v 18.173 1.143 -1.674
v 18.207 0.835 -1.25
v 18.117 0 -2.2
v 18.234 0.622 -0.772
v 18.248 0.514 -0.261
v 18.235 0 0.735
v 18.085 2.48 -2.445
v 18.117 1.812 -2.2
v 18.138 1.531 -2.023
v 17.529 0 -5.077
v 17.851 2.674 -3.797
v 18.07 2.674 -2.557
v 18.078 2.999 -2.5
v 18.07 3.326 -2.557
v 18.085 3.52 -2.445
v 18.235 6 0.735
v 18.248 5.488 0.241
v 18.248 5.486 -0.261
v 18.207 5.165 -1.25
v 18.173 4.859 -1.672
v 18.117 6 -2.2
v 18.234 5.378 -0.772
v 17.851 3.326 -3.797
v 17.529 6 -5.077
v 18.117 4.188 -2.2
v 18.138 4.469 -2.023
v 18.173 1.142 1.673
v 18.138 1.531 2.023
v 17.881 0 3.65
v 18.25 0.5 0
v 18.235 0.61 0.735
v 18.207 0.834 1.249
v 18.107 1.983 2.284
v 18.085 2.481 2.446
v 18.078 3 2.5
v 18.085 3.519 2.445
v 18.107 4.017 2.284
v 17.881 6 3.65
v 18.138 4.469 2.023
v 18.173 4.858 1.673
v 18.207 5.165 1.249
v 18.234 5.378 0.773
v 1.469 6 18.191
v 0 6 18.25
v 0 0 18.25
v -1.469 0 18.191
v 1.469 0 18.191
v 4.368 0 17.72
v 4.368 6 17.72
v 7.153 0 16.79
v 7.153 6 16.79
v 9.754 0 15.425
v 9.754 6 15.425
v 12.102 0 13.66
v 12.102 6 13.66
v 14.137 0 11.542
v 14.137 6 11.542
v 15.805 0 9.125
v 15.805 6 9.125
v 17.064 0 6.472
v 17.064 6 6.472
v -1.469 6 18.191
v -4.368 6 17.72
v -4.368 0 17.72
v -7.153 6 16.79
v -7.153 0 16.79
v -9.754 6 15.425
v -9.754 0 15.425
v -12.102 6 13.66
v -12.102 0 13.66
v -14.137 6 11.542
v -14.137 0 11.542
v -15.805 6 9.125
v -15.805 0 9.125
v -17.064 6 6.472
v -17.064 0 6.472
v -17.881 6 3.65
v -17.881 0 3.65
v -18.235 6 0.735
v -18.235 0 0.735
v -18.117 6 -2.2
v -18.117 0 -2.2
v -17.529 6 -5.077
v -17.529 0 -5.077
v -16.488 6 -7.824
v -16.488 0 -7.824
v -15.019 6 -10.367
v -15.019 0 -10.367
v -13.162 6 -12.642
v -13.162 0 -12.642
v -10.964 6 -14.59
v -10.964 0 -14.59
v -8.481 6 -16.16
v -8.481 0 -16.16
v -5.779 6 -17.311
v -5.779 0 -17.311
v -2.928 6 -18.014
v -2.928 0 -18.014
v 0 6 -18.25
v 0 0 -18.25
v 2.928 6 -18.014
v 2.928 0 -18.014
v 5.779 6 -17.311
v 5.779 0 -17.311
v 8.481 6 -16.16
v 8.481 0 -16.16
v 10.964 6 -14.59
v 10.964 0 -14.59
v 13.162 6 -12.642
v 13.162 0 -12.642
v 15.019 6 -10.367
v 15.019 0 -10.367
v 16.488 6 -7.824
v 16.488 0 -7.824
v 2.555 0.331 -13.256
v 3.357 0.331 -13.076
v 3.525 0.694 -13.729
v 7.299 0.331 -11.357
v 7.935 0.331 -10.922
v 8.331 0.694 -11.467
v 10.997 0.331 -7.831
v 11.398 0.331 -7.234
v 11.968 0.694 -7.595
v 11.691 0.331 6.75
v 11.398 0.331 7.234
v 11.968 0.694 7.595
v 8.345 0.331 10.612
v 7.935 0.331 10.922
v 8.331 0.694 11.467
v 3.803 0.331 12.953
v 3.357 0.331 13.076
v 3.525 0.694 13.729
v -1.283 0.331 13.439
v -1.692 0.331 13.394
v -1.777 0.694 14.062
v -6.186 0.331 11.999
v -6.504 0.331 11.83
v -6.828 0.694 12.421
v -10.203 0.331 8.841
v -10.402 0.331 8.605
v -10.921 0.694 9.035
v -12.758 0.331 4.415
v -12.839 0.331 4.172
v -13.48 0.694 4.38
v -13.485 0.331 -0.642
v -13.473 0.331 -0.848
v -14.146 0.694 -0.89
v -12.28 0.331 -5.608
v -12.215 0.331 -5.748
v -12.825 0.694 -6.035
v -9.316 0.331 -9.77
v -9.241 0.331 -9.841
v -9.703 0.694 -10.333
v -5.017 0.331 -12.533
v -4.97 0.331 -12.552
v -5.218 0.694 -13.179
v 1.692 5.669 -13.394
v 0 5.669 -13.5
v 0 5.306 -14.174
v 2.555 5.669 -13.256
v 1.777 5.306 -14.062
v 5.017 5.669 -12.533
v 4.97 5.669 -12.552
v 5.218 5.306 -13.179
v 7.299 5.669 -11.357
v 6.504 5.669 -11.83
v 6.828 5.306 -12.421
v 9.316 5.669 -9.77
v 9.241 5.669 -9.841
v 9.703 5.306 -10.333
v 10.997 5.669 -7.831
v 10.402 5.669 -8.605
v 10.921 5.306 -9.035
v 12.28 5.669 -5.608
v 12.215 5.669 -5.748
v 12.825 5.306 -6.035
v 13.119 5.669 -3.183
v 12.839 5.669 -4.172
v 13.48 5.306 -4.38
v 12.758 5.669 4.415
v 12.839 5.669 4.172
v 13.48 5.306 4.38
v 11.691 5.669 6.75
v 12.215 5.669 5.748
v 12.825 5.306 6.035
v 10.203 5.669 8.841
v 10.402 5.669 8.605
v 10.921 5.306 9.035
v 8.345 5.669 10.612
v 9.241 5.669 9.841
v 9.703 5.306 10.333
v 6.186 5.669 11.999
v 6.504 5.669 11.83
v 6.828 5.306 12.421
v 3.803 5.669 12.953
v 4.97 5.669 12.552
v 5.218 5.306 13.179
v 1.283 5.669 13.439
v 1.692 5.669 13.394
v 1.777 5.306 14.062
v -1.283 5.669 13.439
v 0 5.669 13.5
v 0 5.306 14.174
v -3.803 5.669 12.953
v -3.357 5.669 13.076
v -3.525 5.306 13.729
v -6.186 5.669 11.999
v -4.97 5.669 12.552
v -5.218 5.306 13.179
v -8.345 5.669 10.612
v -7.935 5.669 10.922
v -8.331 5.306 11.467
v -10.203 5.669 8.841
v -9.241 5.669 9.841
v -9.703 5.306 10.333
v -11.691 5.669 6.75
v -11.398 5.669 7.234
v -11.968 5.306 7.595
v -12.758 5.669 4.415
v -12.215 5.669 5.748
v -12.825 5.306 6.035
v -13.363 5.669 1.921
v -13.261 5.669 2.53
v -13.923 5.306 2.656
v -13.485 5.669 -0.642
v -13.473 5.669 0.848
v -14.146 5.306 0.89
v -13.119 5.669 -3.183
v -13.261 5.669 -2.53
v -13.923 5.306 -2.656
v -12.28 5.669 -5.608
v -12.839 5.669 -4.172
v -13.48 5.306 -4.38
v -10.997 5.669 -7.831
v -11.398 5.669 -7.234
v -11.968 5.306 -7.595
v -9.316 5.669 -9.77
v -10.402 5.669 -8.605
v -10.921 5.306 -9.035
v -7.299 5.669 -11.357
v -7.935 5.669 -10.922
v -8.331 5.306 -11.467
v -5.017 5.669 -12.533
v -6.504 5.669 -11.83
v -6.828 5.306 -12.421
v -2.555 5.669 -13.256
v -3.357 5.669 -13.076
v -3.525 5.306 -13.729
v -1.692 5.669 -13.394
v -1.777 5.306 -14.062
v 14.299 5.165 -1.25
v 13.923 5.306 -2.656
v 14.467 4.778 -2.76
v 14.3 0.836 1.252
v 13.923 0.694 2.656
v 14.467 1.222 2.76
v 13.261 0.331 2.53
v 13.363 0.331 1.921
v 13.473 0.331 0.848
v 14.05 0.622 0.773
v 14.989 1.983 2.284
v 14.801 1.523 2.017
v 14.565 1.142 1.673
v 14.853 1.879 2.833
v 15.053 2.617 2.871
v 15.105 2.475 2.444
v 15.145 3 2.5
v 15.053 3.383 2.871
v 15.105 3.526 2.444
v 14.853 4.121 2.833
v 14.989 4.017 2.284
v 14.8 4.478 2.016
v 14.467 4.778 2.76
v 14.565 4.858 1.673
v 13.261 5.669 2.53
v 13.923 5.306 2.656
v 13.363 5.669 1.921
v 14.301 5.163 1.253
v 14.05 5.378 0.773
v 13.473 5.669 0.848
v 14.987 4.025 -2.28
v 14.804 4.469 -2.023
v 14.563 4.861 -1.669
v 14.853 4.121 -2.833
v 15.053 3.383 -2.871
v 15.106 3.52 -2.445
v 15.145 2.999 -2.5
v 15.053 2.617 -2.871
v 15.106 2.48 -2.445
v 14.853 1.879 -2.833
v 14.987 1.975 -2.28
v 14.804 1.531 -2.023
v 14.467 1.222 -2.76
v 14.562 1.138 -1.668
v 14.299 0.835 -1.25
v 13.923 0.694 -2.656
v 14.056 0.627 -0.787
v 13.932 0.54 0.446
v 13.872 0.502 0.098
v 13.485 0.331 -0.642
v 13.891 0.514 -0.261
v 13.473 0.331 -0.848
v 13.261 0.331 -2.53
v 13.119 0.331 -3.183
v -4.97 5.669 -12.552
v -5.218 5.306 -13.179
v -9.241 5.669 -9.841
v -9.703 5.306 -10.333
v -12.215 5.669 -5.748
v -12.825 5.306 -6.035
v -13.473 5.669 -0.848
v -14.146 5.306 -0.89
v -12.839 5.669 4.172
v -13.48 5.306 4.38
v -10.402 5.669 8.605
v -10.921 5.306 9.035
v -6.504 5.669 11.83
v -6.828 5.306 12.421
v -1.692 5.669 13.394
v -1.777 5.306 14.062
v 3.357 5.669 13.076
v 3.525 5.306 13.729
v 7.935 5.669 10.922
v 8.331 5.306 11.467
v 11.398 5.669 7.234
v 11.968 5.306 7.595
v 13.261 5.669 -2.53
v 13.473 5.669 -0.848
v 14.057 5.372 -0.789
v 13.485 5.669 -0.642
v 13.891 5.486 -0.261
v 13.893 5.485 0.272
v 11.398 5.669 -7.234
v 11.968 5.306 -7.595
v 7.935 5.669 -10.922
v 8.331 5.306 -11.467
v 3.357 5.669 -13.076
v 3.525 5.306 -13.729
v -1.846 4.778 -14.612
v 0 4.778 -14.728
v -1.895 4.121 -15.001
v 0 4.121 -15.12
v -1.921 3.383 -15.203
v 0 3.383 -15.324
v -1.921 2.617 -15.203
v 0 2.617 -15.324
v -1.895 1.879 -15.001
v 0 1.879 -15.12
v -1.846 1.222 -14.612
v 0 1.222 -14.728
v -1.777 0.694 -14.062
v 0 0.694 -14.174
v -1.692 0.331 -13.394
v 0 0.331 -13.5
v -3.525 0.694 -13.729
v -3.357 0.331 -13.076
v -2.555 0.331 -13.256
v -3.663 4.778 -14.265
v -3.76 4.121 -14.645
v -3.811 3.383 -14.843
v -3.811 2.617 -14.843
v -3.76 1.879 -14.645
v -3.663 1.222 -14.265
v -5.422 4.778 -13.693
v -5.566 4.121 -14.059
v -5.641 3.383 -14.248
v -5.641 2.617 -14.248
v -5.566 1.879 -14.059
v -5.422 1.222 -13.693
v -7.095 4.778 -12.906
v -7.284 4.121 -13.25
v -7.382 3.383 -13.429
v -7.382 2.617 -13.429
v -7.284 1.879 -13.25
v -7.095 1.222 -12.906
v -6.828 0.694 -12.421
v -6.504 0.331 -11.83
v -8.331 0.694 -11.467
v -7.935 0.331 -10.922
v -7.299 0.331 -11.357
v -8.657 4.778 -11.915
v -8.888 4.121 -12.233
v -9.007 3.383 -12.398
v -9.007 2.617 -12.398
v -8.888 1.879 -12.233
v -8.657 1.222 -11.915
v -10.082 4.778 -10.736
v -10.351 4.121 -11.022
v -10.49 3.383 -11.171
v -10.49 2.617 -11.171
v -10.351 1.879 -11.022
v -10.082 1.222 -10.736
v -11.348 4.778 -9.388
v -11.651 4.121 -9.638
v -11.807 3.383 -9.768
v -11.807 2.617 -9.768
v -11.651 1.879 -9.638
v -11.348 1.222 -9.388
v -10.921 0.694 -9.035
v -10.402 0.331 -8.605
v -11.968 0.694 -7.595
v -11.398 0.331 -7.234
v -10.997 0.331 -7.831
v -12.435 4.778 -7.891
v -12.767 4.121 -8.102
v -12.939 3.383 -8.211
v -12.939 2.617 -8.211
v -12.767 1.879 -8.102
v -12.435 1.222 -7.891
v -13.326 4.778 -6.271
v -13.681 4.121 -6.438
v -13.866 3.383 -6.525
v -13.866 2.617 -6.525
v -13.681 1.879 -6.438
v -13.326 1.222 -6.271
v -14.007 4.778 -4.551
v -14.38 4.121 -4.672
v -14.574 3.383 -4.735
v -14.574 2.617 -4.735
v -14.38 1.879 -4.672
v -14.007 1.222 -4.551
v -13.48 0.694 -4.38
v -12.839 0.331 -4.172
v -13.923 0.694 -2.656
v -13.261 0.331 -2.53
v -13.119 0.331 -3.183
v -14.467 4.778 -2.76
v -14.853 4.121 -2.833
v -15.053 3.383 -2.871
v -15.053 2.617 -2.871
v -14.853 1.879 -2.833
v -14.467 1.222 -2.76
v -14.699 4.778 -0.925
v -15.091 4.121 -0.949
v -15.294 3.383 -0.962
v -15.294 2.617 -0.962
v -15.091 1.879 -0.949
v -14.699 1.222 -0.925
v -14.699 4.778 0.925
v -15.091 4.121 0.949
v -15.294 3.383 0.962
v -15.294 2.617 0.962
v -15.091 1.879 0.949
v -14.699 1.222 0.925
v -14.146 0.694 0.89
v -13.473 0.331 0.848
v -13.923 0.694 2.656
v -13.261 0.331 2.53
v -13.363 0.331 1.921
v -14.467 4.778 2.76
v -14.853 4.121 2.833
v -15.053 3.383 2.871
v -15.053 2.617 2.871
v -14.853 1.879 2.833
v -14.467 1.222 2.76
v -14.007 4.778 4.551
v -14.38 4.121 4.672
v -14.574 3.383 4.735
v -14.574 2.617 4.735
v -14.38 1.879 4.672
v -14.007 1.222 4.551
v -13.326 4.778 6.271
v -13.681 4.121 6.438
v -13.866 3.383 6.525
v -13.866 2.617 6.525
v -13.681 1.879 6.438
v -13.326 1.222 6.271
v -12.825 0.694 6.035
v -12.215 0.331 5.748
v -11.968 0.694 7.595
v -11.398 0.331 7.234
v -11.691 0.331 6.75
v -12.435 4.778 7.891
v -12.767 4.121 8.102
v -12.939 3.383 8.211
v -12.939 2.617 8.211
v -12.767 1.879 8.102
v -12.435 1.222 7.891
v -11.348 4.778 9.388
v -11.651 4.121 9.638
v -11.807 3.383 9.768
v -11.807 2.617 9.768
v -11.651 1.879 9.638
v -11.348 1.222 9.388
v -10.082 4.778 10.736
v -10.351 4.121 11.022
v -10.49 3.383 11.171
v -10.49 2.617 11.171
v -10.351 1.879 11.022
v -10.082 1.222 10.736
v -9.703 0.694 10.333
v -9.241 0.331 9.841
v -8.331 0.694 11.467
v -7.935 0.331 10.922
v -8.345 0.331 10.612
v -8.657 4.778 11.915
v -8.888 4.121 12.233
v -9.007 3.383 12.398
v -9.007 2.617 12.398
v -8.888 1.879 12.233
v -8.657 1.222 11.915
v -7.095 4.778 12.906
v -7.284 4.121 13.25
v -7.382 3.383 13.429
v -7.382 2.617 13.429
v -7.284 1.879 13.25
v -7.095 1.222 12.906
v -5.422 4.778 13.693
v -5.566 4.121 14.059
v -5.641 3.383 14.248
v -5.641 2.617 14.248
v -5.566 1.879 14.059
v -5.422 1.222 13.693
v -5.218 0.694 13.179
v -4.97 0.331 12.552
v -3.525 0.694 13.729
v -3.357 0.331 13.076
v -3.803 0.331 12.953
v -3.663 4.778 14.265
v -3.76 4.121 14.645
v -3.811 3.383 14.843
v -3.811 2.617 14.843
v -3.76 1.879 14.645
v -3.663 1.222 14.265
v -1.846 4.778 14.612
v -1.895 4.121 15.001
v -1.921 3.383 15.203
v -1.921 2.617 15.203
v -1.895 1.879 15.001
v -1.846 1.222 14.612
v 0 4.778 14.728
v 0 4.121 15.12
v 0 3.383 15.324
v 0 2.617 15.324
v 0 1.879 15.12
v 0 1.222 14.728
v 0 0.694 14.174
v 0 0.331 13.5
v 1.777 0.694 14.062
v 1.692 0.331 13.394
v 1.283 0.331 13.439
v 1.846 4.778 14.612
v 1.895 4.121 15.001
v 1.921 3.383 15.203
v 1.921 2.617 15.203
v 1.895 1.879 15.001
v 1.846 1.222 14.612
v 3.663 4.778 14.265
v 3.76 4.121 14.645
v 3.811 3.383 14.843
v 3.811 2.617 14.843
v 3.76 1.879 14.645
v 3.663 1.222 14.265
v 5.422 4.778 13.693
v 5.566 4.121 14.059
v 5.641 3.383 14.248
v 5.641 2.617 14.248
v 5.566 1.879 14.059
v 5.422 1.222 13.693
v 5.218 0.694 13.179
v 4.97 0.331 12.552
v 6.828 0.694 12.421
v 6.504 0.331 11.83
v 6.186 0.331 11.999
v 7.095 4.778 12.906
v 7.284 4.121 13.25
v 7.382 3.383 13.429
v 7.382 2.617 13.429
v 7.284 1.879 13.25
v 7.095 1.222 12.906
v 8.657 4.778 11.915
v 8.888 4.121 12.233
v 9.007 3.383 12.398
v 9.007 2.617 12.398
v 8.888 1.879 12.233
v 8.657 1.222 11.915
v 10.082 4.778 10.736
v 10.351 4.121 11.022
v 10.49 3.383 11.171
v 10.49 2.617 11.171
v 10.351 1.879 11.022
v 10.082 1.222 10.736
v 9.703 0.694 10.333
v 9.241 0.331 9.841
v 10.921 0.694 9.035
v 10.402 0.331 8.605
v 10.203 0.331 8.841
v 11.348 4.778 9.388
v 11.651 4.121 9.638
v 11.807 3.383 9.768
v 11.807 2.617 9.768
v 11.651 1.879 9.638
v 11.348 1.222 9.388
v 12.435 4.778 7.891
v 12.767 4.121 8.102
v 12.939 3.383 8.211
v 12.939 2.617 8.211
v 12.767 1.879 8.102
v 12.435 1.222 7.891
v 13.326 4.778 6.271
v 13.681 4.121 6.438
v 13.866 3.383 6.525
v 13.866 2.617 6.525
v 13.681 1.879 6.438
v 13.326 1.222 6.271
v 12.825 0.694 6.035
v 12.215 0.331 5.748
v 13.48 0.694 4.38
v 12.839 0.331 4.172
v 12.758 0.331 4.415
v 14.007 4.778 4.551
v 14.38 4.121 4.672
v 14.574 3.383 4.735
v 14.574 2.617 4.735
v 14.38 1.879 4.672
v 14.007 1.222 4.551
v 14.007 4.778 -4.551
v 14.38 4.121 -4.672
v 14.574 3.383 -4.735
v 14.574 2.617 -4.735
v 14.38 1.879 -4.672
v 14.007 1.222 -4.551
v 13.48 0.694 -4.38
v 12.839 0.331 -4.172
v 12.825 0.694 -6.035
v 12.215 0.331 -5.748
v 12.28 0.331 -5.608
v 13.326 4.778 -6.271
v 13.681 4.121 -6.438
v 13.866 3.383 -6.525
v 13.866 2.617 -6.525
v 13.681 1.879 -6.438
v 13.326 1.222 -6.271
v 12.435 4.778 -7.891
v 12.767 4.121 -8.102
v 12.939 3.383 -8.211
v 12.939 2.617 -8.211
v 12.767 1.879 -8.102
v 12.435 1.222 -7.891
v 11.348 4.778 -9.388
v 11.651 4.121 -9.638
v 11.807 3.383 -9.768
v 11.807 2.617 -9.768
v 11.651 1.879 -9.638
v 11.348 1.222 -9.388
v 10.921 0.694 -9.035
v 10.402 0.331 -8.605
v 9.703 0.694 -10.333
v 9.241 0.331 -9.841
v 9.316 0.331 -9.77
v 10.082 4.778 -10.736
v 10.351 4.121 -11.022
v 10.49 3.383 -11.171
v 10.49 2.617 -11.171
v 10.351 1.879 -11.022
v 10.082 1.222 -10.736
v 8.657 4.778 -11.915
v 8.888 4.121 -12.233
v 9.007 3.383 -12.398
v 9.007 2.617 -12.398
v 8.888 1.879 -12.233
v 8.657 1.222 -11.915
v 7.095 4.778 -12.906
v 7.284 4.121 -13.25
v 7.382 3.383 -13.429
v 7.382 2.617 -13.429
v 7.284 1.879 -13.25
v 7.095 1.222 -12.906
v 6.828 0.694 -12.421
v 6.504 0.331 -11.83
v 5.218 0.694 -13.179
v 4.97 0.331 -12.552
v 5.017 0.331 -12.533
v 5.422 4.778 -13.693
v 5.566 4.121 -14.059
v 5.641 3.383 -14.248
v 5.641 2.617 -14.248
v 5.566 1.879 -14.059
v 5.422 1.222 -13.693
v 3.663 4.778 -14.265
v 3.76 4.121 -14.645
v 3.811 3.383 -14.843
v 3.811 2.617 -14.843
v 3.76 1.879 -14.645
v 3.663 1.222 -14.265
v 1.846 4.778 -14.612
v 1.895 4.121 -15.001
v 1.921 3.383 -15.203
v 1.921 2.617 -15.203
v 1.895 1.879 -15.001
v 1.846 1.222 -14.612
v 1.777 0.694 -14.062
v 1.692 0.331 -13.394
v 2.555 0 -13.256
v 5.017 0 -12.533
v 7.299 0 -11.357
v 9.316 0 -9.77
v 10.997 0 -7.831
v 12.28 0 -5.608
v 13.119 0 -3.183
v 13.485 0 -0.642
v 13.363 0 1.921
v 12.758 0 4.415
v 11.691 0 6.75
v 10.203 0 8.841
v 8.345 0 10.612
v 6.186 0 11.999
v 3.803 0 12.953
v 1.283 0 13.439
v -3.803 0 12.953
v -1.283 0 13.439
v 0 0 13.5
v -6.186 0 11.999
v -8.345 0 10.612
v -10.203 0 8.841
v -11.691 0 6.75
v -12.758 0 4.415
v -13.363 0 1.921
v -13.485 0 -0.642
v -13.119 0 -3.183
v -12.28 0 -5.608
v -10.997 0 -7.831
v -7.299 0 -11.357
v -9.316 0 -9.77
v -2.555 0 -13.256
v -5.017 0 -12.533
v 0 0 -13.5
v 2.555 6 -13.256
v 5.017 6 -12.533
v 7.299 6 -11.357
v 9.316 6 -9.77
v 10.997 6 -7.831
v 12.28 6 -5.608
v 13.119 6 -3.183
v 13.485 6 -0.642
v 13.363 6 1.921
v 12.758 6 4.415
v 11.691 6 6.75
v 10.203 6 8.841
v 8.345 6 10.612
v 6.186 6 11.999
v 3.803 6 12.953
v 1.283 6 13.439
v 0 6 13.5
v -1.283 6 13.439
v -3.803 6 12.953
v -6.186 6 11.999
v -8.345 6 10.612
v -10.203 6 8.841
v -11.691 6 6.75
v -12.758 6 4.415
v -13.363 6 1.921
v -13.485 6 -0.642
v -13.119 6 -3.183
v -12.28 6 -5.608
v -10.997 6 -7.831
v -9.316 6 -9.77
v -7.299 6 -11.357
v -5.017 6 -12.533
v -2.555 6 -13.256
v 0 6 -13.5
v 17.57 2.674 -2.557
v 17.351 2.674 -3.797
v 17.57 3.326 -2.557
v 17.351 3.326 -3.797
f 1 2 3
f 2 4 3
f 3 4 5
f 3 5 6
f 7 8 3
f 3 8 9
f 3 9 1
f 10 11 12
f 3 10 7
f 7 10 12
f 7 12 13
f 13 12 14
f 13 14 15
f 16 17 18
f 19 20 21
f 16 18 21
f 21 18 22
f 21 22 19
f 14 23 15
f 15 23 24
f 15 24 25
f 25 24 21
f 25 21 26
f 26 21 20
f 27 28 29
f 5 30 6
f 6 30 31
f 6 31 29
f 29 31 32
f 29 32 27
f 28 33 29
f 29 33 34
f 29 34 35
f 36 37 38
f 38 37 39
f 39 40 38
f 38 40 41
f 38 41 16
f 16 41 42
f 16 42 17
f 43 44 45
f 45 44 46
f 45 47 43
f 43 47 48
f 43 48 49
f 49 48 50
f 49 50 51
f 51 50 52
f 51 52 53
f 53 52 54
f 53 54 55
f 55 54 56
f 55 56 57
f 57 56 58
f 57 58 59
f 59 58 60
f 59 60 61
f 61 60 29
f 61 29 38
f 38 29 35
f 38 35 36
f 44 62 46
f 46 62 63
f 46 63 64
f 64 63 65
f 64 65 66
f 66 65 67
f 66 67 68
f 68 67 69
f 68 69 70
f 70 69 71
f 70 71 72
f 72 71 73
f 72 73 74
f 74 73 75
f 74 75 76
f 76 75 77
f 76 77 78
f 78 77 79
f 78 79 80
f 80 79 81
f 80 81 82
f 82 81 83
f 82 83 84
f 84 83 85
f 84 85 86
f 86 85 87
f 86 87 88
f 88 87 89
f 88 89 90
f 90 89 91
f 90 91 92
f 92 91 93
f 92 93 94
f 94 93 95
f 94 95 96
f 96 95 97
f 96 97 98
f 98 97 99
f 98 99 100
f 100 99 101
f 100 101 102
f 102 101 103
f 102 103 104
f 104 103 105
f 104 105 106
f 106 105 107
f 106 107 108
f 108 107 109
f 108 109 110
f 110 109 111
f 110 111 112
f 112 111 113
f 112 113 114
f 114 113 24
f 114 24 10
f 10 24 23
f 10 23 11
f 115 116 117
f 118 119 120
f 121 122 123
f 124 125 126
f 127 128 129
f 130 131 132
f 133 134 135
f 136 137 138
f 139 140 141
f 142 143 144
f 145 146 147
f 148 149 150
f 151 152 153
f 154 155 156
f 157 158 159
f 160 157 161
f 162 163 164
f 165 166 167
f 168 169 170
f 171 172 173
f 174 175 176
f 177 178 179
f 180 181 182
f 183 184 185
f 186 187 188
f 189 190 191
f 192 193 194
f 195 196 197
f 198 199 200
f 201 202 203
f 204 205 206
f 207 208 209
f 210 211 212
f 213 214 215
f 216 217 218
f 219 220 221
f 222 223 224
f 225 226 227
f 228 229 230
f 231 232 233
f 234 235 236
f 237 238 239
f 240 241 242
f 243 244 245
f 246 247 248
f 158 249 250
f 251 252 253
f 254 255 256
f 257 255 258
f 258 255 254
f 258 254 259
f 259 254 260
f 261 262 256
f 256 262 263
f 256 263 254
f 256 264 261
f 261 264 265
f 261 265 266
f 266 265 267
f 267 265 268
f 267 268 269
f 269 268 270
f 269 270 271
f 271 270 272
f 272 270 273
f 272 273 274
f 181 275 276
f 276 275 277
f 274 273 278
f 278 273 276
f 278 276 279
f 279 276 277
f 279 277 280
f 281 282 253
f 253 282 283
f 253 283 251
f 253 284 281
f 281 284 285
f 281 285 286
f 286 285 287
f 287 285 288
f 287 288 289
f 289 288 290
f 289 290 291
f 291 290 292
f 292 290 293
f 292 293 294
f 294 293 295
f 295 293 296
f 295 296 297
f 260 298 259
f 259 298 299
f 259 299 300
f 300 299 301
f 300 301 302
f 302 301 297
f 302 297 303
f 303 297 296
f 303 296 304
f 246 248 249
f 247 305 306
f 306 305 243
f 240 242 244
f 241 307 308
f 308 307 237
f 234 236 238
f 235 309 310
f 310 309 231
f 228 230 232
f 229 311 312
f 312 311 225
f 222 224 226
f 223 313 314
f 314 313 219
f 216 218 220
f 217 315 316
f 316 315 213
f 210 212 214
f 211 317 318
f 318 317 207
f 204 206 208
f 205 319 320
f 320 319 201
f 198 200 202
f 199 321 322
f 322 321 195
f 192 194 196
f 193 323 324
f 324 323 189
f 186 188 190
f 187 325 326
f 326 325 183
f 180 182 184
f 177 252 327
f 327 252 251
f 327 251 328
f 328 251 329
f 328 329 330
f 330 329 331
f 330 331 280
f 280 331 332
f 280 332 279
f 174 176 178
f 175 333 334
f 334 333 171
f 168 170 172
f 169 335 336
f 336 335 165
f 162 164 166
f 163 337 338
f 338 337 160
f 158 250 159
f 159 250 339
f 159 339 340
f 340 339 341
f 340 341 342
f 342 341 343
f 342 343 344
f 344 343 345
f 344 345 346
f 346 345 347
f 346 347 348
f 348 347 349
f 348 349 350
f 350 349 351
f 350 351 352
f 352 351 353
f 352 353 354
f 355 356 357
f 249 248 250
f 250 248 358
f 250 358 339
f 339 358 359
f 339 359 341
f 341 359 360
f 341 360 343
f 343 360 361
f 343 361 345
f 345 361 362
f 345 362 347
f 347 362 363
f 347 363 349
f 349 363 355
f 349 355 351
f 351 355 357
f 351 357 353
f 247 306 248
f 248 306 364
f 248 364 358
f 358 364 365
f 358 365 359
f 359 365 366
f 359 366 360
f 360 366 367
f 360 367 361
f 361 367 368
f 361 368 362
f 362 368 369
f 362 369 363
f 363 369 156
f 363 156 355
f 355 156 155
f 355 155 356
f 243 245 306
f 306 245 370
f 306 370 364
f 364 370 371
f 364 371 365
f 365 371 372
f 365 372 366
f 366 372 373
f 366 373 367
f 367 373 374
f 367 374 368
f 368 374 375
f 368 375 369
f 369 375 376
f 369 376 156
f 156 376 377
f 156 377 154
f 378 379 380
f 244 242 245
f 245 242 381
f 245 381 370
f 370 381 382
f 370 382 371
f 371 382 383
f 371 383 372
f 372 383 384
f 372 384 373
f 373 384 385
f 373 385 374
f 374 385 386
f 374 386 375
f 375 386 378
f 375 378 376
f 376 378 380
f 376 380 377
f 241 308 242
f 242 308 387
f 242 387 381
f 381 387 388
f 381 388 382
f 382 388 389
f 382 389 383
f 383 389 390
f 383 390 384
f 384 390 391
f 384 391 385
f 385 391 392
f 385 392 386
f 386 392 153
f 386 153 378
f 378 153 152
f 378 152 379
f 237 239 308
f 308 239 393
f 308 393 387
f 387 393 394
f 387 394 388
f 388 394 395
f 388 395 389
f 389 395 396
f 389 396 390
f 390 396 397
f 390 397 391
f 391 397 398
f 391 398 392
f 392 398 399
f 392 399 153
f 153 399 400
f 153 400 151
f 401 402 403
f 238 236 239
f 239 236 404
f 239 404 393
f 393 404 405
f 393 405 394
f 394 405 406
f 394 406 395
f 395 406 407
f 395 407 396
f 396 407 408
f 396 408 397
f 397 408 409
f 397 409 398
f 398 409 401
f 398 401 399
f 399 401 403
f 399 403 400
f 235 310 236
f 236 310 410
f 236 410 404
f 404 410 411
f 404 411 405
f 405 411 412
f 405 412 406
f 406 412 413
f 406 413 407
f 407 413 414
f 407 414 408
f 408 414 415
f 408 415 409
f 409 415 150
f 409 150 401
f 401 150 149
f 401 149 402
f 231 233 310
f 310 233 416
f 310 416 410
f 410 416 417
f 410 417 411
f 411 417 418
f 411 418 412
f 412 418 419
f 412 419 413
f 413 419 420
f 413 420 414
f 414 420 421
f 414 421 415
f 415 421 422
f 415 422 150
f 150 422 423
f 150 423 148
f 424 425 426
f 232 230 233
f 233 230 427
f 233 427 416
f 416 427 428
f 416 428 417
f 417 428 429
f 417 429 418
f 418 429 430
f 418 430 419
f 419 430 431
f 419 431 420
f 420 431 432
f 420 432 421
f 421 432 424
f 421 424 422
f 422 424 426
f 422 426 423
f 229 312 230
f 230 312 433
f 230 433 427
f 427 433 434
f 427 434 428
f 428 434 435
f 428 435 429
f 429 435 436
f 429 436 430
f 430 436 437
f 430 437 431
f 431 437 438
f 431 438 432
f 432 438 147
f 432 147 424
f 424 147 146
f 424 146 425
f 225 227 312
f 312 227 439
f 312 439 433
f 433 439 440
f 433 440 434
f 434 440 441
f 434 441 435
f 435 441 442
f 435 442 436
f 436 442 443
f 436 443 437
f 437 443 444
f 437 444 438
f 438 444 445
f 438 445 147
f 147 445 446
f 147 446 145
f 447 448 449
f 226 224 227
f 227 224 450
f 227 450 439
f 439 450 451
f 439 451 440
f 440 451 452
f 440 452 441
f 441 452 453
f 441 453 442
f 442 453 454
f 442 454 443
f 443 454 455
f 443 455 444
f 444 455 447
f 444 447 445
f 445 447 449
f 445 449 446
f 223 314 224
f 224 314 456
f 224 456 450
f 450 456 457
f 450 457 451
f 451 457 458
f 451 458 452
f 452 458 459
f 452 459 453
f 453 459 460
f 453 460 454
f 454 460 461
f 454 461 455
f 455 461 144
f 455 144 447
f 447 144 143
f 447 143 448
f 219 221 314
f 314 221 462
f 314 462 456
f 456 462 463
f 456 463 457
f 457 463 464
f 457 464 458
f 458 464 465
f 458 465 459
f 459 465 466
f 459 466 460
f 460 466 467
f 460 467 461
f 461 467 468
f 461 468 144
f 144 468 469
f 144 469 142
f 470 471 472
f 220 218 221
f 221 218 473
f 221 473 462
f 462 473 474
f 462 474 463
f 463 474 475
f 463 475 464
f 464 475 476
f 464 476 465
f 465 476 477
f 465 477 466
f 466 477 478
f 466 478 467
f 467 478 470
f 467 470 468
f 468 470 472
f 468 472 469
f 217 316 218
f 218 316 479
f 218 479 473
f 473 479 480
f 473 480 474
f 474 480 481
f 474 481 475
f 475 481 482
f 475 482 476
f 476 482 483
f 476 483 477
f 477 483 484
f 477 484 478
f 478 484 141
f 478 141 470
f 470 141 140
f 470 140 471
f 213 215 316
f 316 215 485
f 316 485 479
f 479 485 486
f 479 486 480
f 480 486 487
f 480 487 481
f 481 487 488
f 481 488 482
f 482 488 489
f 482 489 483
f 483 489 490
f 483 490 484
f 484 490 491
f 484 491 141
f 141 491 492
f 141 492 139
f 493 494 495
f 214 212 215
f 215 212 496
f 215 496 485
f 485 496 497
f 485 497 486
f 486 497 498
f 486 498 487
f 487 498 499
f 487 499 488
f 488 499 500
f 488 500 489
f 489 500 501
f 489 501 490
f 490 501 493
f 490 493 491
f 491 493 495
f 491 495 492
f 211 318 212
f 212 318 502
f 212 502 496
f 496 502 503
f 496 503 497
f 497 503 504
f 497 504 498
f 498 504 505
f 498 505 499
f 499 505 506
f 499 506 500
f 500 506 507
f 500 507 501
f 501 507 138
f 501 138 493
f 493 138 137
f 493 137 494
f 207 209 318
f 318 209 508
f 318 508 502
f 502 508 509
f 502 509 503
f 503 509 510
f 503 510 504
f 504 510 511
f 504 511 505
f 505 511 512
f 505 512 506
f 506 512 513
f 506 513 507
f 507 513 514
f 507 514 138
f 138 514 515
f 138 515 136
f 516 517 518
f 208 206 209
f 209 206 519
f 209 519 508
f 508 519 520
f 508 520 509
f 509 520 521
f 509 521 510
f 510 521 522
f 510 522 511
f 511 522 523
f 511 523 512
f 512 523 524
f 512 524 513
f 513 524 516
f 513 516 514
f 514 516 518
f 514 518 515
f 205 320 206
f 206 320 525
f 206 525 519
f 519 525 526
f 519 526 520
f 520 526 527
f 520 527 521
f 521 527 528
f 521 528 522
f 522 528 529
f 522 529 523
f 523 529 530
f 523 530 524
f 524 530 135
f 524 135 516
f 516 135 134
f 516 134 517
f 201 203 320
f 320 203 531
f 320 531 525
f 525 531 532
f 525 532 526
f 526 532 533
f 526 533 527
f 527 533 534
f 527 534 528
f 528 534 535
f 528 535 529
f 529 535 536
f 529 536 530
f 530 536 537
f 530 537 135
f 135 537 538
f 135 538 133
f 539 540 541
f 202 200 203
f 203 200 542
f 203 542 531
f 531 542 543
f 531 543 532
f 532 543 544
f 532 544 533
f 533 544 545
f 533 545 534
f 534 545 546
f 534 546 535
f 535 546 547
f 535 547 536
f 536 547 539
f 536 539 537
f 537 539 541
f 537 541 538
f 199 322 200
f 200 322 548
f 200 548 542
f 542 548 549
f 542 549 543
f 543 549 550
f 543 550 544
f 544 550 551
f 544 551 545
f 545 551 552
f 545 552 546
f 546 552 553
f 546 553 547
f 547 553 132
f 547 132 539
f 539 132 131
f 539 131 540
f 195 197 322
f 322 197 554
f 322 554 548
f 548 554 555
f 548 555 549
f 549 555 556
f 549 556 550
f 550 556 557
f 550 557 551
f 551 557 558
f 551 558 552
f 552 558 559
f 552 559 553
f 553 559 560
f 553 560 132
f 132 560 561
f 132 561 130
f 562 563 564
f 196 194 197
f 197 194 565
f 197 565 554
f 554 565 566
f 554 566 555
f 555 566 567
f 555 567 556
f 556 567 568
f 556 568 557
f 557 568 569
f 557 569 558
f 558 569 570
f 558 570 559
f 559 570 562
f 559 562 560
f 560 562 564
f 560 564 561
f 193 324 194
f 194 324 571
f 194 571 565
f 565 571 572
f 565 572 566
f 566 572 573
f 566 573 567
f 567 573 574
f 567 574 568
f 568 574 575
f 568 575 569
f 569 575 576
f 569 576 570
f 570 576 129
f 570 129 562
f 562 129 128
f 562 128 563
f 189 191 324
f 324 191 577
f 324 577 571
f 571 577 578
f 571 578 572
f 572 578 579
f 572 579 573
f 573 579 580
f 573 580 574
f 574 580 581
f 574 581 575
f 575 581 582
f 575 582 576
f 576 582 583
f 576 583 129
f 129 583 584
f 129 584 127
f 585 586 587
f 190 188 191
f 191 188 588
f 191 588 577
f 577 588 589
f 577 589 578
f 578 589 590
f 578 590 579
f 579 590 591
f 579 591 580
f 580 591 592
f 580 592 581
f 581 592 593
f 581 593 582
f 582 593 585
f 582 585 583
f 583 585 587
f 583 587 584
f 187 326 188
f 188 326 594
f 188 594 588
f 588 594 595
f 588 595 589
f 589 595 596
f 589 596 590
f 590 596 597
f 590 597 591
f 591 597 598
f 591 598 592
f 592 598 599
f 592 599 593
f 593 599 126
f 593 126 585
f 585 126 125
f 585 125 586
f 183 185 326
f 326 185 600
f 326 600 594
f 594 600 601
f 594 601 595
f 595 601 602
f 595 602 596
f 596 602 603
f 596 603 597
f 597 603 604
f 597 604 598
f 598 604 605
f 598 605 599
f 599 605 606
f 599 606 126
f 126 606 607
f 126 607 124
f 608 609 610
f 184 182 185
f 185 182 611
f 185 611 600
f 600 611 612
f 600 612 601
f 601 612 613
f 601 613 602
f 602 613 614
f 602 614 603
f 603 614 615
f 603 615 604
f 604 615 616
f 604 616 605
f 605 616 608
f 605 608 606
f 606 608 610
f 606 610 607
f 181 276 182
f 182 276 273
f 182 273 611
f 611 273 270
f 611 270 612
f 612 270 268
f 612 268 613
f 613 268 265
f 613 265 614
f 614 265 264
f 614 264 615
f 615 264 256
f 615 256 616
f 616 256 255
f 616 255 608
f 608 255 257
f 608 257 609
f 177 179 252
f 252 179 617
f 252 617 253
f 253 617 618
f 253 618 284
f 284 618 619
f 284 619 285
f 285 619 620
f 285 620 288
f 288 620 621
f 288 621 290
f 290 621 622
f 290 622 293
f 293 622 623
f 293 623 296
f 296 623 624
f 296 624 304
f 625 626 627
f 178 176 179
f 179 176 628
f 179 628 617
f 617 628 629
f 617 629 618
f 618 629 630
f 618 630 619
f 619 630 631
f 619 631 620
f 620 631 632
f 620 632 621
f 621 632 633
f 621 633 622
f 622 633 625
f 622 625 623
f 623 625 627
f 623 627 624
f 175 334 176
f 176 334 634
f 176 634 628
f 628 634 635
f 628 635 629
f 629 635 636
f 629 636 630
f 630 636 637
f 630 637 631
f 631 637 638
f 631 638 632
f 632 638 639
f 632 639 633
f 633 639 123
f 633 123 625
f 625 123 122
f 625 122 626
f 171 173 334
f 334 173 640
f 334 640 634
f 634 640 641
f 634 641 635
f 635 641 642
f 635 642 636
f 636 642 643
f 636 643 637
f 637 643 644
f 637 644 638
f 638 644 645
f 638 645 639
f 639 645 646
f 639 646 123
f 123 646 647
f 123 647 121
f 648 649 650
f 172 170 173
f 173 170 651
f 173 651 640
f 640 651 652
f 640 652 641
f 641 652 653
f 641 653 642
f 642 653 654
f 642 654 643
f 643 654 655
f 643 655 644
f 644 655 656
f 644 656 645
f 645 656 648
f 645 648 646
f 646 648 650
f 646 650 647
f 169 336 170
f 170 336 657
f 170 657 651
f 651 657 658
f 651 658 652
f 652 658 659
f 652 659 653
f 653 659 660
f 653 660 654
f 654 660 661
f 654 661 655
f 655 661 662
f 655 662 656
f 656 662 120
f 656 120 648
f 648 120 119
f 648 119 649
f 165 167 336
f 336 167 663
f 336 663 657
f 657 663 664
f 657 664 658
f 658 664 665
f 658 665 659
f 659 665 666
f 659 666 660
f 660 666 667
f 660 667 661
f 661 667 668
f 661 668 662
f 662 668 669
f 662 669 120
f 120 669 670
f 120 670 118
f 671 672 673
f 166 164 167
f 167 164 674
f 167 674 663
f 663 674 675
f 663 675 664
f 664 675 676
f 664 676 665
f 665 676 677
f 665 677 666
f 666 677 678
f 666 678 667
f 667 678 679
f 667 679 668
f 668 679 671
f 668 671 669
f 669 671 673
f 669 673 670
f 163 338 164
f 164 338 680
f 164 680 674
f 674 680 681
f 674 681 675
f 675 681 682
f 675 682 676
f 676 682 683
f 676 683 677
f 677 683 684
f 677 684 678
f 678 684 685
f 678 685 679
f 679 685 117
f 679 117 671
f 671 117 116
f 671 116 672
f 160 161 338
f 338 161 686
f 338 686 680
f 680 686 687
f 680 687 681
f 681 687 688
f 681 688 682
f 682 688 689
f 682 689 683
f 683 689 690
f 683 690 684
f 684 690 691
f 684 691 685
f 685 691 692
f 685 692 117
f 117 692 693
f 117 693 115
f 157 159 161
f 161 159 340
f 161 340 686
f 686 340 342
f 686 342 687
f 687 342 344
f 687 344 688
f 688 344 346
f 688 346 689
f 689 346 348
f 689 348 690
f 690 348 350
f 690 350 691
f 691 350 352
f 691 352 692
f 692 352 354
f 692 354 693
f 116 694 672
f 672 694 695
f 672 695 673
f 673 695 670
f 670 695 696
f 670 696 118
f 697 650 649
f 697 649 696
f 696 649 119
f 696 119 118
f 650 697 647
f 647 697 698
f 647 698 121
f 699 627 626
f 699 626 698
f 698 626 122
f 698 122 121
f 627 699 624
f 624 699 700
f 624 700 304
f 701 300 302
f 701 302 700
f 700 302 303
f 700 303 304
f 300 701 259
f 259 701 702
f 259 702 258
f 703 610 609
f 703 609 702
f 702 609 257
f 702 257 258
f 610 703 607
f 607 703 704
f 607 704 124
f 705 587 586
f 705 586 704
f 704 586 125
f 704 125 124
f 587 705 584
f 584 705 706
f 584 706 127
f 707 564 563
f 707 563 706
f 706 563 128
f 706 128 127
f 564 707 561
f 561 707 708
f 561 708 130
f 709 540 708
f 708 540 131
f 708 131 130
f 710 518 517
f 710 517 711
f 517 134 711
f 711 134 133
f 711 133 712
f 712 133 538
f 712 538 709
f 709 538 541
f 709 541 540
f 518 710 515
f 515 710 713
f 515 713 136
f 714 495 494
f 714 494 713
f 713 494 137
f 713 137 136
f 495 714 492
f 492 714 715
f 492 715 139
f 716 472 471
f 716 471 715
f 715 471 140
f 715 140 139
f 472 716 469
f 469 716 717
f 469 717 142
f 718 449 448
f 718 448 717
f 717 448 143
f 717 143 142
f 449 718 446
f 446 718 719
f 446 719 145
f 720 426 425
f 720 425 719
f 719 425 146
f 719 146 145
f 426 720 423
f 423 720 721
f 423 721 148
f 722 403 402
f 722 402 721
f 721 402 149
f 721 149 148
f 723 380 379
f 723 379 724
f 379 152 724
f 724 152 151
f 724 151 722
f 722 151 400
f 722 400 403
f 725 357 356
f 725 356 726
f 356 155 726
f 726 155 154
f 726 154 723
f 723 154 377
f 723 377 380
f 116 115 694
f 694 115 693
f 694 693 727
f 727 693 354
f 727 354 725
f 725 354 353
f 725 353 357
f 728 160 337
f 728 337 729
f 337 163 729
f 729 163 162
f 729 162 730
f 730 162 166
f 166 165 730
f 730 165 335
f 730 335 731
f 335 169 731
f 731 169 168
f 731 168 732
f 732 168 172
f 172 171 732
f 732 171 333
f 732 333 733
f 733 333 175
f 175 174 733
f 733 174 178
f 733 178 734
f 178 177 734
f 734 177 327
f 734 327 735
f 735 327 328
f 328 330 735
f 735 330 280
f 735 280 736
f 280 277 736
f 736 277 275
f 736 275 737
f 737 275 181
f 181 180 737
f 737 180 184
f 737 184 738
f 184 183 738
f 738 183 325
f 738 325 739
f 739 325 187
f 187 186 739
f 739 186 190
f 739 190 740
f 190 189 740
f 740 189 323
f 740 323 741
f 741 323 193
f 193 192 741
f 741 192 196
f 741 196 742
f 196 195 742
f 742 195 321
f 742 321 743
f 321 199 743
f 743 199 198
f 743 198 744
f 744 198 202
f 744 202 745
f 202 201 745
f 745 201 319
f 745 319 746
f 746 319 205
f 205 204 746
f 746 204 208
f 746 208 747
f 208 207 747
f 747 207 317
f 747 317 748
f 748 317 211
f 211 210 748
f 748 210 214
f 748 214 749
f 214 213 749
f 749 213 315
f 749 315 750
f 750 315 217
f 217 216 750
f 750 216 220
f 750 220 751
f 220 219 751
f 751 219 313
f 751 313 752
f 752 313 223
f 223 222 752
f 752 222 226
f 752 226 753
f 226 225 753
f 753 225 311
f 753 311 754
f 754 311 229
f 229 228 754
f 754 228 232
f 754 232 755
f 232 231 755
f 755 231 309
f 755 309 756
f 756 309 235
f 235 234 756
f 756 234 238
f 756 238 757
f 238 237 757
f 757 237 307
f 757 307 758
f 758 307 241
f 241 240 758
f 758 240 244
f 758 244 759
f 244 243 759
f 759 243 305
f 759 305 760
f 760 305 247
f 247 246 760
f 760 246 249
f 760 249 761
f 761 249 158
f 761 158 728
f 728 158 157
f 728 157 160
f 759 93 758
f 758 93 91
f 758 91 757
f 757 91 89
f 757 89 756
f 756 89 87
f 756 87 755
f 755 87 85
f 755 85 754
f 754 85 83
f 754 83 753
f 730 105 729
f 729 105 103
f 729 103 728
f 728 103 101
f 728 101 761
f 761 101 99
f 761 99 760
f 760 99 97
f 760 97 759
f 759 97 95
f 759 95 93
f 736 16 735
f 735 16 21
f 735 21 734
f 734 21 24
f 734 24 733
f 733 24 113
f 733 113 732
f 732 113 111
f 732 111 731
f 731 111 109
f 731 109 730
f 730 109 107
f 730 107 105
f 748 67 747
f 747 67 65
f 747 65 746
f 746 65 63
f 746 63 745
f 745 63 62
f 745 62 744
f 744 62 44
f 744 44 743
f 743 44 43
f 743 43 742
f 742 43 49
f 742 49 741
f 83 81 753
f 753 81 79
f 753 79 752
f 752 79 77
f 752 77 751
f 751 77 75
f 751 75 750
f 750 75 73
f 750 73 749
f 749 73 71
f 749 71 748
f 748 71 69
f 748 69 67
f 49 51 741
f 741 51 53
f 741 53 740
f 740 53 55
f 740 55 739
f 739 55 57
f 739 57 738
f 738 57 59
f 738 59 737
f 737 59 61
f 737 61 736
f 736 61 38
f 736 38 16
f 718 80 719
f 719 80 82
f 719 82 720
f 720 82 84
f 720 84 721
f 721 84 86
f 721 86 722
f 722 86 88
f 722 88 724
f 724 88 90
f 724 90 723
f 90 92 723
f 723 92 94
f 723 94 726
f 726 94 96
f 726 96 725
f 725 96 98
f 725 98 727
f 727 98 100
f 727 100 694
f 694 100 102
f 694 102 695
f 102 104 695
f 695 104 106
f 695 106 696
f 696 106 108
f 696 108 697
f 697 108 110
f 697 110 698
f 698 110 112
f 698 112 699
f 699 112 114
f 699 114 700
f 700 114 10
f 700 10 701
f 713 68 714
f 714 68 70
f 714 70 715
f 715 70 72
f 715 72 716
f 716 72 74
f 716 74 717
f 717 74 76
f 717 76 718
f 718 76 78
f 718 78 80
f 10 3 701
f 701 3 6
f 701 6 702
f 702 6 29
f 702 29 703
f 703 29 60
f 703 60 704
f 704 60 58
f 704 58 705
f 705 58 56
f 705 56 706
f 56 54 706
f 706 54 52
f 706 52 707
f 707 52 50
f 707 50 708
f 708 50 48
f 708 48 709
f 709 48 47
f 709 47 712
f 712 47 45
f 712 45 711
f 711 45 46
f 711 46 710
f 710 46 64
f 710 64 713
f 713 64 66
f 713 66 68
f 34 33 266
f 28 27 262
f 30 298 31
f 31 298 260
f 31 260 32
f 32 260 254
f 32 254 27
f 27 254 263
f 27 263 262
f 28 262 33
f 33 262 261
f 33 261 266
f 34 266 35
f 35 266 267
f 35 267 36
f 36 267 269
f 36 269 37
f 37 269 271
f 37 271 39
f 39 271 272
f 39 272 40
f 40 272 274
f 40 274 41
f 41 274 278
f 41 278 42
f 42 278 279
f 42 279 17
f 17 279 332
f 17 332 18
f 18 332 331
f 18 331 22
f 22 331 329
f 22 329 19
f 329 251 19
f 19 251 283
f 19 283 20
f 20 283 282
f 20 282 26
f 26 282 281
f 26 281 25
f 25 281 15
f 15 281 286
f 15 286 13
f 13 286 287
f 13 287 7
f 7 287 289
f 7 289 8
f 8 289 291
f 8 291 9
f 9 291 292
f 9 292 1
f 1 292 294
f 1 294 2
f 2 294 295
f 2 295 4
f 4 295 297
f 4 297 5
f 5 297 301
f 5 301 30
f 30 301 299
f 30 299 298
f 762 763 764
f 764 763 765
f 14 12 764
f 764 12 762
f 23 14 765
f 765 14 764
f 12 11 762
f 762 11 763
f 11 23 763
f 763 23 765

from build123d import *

# Parameters (mm, degrees)
SKETCH1_R                 = 18.25
SKETCH1_R_2               = 13.5
BOSS_EXTRUDE1_DEPTH       = 6
SKETCH3_R                 = 2.85
SKETCH4_R                 = 2.5
CUT_EXTRUDE1_DEPTH        = 27.497641404
CUT_EXTRUDE1_DEPTH_BACK   = 10
CUT_EXTRUDE2_REACH        = 28.998
CUT_EXTRUDE2_START_RADIUS = 18.25
CUT_EXTRUDE2_END_RADIUS   = 18.25
SKETCH6_W                 = 1.240344628
SKETCH6_H                 = 0.651674146


with BuildPart() as part:
    # Sketch1 → Boss-Extrude1 (new body)
    with BuildSketch(Plane(origin=(0, 0, 0), x_dir=(1, 0, 0), z_dir=(0, 1, 0))):
        with Locations(Location((0, 0, 0), (0, 0, 270))):
            Circle(SKETCH1_R)
        with Locations(Location((0, 0, 0), (0, 0, 270))):
            Circle(SKETCH1_R_2, mode=Mode.SUBTRACT)
    extrude(amount=BOSS_EXTRUDE1_DEPTH)

    # Sketch3 → Cut-Revolve1 (revolve, cut)
    with BuildSketch(Plane.XY, mode=Mode.PRIVATE) as cut_revolve1_sk:
        with Locations((-12.5, 3)):
            Circle(SKETCH3_R)
    revolve(cut_revolve1_sk.sketch.rotate(Axis((0, 0, 0), (0, 1, 0)), 270), axis=Axis((0, 0, 0), (0, 1, 0)), mode=Mode.SUBTRACT)

    # Sketch4 → Cut-Extrude1 (cut, two sides)
    with BuildSketch(Plane(origin=(0, 0, 0), x_dir=(0, 0, -1), z_dir=(1, 0, 0))) as cut_extrude1_sk:
        with Locations(Location((0, 3, 0), (0, 0, 267.756136347))):
            Circle(SKETCH4_R)
    extrude(amount=CUT_EXTRUDE1_DEPTH, mode=Mode.SUBTRACT)
    extrude(cut_extrude1_sk.sketch, amount=-CUT_EXTRUDE1_DEPTH_BACK, mode=Mode.SUBTRACT)

    # Cut-Extrude2: from a cylinder face, 28.998 long prism both ways, kept between that surface and its translate by the depth
    cut_extrude2_start = Plane(origin=(0, 3, 0), z_dir=(0, -1, 0)) * Cylinder(CUT_EXTRUDE2_START_RADIUS, 95.496, mode=Mode.PRIVATE)
    cut_extrude2_end = Plane(origin=(-0.5, 3, 0), z_dir=(0, -1, 0)) * Cylinder(CUT_EXTRUDE2_END_RADIUS, 95.496, mode=Mode.PRIVATE)
    # Sketch6 → Cut-Extrude2 (cut, from a surface)
    with BuildSketch(Plane(origin=(0, 0, 0), x_dir=(0, 0, -1), z_dir=(1, 0, 0)), mode=Mode.PRIVATE) as cut_extrude2_sk1:
        with Locations((3.176747556, 3)):
            Rectangle(SKETCH6_W, SKETCH6_H)
    cut_extrude2_tool1 = extrude(cut_extrude2_sk1.sketch, amount=CUT_EXTRUDE2_REACH, both=True, mode=Mode.PRIVATE)
    add(((cut_extrude2_tool1 & cut_extrude2_start) - cut_extrude2_end).solids().sort_by_distance((17.710349, 3, -3.176748))[0], mode=Mode.SUBTRACT)


solid = part.part
